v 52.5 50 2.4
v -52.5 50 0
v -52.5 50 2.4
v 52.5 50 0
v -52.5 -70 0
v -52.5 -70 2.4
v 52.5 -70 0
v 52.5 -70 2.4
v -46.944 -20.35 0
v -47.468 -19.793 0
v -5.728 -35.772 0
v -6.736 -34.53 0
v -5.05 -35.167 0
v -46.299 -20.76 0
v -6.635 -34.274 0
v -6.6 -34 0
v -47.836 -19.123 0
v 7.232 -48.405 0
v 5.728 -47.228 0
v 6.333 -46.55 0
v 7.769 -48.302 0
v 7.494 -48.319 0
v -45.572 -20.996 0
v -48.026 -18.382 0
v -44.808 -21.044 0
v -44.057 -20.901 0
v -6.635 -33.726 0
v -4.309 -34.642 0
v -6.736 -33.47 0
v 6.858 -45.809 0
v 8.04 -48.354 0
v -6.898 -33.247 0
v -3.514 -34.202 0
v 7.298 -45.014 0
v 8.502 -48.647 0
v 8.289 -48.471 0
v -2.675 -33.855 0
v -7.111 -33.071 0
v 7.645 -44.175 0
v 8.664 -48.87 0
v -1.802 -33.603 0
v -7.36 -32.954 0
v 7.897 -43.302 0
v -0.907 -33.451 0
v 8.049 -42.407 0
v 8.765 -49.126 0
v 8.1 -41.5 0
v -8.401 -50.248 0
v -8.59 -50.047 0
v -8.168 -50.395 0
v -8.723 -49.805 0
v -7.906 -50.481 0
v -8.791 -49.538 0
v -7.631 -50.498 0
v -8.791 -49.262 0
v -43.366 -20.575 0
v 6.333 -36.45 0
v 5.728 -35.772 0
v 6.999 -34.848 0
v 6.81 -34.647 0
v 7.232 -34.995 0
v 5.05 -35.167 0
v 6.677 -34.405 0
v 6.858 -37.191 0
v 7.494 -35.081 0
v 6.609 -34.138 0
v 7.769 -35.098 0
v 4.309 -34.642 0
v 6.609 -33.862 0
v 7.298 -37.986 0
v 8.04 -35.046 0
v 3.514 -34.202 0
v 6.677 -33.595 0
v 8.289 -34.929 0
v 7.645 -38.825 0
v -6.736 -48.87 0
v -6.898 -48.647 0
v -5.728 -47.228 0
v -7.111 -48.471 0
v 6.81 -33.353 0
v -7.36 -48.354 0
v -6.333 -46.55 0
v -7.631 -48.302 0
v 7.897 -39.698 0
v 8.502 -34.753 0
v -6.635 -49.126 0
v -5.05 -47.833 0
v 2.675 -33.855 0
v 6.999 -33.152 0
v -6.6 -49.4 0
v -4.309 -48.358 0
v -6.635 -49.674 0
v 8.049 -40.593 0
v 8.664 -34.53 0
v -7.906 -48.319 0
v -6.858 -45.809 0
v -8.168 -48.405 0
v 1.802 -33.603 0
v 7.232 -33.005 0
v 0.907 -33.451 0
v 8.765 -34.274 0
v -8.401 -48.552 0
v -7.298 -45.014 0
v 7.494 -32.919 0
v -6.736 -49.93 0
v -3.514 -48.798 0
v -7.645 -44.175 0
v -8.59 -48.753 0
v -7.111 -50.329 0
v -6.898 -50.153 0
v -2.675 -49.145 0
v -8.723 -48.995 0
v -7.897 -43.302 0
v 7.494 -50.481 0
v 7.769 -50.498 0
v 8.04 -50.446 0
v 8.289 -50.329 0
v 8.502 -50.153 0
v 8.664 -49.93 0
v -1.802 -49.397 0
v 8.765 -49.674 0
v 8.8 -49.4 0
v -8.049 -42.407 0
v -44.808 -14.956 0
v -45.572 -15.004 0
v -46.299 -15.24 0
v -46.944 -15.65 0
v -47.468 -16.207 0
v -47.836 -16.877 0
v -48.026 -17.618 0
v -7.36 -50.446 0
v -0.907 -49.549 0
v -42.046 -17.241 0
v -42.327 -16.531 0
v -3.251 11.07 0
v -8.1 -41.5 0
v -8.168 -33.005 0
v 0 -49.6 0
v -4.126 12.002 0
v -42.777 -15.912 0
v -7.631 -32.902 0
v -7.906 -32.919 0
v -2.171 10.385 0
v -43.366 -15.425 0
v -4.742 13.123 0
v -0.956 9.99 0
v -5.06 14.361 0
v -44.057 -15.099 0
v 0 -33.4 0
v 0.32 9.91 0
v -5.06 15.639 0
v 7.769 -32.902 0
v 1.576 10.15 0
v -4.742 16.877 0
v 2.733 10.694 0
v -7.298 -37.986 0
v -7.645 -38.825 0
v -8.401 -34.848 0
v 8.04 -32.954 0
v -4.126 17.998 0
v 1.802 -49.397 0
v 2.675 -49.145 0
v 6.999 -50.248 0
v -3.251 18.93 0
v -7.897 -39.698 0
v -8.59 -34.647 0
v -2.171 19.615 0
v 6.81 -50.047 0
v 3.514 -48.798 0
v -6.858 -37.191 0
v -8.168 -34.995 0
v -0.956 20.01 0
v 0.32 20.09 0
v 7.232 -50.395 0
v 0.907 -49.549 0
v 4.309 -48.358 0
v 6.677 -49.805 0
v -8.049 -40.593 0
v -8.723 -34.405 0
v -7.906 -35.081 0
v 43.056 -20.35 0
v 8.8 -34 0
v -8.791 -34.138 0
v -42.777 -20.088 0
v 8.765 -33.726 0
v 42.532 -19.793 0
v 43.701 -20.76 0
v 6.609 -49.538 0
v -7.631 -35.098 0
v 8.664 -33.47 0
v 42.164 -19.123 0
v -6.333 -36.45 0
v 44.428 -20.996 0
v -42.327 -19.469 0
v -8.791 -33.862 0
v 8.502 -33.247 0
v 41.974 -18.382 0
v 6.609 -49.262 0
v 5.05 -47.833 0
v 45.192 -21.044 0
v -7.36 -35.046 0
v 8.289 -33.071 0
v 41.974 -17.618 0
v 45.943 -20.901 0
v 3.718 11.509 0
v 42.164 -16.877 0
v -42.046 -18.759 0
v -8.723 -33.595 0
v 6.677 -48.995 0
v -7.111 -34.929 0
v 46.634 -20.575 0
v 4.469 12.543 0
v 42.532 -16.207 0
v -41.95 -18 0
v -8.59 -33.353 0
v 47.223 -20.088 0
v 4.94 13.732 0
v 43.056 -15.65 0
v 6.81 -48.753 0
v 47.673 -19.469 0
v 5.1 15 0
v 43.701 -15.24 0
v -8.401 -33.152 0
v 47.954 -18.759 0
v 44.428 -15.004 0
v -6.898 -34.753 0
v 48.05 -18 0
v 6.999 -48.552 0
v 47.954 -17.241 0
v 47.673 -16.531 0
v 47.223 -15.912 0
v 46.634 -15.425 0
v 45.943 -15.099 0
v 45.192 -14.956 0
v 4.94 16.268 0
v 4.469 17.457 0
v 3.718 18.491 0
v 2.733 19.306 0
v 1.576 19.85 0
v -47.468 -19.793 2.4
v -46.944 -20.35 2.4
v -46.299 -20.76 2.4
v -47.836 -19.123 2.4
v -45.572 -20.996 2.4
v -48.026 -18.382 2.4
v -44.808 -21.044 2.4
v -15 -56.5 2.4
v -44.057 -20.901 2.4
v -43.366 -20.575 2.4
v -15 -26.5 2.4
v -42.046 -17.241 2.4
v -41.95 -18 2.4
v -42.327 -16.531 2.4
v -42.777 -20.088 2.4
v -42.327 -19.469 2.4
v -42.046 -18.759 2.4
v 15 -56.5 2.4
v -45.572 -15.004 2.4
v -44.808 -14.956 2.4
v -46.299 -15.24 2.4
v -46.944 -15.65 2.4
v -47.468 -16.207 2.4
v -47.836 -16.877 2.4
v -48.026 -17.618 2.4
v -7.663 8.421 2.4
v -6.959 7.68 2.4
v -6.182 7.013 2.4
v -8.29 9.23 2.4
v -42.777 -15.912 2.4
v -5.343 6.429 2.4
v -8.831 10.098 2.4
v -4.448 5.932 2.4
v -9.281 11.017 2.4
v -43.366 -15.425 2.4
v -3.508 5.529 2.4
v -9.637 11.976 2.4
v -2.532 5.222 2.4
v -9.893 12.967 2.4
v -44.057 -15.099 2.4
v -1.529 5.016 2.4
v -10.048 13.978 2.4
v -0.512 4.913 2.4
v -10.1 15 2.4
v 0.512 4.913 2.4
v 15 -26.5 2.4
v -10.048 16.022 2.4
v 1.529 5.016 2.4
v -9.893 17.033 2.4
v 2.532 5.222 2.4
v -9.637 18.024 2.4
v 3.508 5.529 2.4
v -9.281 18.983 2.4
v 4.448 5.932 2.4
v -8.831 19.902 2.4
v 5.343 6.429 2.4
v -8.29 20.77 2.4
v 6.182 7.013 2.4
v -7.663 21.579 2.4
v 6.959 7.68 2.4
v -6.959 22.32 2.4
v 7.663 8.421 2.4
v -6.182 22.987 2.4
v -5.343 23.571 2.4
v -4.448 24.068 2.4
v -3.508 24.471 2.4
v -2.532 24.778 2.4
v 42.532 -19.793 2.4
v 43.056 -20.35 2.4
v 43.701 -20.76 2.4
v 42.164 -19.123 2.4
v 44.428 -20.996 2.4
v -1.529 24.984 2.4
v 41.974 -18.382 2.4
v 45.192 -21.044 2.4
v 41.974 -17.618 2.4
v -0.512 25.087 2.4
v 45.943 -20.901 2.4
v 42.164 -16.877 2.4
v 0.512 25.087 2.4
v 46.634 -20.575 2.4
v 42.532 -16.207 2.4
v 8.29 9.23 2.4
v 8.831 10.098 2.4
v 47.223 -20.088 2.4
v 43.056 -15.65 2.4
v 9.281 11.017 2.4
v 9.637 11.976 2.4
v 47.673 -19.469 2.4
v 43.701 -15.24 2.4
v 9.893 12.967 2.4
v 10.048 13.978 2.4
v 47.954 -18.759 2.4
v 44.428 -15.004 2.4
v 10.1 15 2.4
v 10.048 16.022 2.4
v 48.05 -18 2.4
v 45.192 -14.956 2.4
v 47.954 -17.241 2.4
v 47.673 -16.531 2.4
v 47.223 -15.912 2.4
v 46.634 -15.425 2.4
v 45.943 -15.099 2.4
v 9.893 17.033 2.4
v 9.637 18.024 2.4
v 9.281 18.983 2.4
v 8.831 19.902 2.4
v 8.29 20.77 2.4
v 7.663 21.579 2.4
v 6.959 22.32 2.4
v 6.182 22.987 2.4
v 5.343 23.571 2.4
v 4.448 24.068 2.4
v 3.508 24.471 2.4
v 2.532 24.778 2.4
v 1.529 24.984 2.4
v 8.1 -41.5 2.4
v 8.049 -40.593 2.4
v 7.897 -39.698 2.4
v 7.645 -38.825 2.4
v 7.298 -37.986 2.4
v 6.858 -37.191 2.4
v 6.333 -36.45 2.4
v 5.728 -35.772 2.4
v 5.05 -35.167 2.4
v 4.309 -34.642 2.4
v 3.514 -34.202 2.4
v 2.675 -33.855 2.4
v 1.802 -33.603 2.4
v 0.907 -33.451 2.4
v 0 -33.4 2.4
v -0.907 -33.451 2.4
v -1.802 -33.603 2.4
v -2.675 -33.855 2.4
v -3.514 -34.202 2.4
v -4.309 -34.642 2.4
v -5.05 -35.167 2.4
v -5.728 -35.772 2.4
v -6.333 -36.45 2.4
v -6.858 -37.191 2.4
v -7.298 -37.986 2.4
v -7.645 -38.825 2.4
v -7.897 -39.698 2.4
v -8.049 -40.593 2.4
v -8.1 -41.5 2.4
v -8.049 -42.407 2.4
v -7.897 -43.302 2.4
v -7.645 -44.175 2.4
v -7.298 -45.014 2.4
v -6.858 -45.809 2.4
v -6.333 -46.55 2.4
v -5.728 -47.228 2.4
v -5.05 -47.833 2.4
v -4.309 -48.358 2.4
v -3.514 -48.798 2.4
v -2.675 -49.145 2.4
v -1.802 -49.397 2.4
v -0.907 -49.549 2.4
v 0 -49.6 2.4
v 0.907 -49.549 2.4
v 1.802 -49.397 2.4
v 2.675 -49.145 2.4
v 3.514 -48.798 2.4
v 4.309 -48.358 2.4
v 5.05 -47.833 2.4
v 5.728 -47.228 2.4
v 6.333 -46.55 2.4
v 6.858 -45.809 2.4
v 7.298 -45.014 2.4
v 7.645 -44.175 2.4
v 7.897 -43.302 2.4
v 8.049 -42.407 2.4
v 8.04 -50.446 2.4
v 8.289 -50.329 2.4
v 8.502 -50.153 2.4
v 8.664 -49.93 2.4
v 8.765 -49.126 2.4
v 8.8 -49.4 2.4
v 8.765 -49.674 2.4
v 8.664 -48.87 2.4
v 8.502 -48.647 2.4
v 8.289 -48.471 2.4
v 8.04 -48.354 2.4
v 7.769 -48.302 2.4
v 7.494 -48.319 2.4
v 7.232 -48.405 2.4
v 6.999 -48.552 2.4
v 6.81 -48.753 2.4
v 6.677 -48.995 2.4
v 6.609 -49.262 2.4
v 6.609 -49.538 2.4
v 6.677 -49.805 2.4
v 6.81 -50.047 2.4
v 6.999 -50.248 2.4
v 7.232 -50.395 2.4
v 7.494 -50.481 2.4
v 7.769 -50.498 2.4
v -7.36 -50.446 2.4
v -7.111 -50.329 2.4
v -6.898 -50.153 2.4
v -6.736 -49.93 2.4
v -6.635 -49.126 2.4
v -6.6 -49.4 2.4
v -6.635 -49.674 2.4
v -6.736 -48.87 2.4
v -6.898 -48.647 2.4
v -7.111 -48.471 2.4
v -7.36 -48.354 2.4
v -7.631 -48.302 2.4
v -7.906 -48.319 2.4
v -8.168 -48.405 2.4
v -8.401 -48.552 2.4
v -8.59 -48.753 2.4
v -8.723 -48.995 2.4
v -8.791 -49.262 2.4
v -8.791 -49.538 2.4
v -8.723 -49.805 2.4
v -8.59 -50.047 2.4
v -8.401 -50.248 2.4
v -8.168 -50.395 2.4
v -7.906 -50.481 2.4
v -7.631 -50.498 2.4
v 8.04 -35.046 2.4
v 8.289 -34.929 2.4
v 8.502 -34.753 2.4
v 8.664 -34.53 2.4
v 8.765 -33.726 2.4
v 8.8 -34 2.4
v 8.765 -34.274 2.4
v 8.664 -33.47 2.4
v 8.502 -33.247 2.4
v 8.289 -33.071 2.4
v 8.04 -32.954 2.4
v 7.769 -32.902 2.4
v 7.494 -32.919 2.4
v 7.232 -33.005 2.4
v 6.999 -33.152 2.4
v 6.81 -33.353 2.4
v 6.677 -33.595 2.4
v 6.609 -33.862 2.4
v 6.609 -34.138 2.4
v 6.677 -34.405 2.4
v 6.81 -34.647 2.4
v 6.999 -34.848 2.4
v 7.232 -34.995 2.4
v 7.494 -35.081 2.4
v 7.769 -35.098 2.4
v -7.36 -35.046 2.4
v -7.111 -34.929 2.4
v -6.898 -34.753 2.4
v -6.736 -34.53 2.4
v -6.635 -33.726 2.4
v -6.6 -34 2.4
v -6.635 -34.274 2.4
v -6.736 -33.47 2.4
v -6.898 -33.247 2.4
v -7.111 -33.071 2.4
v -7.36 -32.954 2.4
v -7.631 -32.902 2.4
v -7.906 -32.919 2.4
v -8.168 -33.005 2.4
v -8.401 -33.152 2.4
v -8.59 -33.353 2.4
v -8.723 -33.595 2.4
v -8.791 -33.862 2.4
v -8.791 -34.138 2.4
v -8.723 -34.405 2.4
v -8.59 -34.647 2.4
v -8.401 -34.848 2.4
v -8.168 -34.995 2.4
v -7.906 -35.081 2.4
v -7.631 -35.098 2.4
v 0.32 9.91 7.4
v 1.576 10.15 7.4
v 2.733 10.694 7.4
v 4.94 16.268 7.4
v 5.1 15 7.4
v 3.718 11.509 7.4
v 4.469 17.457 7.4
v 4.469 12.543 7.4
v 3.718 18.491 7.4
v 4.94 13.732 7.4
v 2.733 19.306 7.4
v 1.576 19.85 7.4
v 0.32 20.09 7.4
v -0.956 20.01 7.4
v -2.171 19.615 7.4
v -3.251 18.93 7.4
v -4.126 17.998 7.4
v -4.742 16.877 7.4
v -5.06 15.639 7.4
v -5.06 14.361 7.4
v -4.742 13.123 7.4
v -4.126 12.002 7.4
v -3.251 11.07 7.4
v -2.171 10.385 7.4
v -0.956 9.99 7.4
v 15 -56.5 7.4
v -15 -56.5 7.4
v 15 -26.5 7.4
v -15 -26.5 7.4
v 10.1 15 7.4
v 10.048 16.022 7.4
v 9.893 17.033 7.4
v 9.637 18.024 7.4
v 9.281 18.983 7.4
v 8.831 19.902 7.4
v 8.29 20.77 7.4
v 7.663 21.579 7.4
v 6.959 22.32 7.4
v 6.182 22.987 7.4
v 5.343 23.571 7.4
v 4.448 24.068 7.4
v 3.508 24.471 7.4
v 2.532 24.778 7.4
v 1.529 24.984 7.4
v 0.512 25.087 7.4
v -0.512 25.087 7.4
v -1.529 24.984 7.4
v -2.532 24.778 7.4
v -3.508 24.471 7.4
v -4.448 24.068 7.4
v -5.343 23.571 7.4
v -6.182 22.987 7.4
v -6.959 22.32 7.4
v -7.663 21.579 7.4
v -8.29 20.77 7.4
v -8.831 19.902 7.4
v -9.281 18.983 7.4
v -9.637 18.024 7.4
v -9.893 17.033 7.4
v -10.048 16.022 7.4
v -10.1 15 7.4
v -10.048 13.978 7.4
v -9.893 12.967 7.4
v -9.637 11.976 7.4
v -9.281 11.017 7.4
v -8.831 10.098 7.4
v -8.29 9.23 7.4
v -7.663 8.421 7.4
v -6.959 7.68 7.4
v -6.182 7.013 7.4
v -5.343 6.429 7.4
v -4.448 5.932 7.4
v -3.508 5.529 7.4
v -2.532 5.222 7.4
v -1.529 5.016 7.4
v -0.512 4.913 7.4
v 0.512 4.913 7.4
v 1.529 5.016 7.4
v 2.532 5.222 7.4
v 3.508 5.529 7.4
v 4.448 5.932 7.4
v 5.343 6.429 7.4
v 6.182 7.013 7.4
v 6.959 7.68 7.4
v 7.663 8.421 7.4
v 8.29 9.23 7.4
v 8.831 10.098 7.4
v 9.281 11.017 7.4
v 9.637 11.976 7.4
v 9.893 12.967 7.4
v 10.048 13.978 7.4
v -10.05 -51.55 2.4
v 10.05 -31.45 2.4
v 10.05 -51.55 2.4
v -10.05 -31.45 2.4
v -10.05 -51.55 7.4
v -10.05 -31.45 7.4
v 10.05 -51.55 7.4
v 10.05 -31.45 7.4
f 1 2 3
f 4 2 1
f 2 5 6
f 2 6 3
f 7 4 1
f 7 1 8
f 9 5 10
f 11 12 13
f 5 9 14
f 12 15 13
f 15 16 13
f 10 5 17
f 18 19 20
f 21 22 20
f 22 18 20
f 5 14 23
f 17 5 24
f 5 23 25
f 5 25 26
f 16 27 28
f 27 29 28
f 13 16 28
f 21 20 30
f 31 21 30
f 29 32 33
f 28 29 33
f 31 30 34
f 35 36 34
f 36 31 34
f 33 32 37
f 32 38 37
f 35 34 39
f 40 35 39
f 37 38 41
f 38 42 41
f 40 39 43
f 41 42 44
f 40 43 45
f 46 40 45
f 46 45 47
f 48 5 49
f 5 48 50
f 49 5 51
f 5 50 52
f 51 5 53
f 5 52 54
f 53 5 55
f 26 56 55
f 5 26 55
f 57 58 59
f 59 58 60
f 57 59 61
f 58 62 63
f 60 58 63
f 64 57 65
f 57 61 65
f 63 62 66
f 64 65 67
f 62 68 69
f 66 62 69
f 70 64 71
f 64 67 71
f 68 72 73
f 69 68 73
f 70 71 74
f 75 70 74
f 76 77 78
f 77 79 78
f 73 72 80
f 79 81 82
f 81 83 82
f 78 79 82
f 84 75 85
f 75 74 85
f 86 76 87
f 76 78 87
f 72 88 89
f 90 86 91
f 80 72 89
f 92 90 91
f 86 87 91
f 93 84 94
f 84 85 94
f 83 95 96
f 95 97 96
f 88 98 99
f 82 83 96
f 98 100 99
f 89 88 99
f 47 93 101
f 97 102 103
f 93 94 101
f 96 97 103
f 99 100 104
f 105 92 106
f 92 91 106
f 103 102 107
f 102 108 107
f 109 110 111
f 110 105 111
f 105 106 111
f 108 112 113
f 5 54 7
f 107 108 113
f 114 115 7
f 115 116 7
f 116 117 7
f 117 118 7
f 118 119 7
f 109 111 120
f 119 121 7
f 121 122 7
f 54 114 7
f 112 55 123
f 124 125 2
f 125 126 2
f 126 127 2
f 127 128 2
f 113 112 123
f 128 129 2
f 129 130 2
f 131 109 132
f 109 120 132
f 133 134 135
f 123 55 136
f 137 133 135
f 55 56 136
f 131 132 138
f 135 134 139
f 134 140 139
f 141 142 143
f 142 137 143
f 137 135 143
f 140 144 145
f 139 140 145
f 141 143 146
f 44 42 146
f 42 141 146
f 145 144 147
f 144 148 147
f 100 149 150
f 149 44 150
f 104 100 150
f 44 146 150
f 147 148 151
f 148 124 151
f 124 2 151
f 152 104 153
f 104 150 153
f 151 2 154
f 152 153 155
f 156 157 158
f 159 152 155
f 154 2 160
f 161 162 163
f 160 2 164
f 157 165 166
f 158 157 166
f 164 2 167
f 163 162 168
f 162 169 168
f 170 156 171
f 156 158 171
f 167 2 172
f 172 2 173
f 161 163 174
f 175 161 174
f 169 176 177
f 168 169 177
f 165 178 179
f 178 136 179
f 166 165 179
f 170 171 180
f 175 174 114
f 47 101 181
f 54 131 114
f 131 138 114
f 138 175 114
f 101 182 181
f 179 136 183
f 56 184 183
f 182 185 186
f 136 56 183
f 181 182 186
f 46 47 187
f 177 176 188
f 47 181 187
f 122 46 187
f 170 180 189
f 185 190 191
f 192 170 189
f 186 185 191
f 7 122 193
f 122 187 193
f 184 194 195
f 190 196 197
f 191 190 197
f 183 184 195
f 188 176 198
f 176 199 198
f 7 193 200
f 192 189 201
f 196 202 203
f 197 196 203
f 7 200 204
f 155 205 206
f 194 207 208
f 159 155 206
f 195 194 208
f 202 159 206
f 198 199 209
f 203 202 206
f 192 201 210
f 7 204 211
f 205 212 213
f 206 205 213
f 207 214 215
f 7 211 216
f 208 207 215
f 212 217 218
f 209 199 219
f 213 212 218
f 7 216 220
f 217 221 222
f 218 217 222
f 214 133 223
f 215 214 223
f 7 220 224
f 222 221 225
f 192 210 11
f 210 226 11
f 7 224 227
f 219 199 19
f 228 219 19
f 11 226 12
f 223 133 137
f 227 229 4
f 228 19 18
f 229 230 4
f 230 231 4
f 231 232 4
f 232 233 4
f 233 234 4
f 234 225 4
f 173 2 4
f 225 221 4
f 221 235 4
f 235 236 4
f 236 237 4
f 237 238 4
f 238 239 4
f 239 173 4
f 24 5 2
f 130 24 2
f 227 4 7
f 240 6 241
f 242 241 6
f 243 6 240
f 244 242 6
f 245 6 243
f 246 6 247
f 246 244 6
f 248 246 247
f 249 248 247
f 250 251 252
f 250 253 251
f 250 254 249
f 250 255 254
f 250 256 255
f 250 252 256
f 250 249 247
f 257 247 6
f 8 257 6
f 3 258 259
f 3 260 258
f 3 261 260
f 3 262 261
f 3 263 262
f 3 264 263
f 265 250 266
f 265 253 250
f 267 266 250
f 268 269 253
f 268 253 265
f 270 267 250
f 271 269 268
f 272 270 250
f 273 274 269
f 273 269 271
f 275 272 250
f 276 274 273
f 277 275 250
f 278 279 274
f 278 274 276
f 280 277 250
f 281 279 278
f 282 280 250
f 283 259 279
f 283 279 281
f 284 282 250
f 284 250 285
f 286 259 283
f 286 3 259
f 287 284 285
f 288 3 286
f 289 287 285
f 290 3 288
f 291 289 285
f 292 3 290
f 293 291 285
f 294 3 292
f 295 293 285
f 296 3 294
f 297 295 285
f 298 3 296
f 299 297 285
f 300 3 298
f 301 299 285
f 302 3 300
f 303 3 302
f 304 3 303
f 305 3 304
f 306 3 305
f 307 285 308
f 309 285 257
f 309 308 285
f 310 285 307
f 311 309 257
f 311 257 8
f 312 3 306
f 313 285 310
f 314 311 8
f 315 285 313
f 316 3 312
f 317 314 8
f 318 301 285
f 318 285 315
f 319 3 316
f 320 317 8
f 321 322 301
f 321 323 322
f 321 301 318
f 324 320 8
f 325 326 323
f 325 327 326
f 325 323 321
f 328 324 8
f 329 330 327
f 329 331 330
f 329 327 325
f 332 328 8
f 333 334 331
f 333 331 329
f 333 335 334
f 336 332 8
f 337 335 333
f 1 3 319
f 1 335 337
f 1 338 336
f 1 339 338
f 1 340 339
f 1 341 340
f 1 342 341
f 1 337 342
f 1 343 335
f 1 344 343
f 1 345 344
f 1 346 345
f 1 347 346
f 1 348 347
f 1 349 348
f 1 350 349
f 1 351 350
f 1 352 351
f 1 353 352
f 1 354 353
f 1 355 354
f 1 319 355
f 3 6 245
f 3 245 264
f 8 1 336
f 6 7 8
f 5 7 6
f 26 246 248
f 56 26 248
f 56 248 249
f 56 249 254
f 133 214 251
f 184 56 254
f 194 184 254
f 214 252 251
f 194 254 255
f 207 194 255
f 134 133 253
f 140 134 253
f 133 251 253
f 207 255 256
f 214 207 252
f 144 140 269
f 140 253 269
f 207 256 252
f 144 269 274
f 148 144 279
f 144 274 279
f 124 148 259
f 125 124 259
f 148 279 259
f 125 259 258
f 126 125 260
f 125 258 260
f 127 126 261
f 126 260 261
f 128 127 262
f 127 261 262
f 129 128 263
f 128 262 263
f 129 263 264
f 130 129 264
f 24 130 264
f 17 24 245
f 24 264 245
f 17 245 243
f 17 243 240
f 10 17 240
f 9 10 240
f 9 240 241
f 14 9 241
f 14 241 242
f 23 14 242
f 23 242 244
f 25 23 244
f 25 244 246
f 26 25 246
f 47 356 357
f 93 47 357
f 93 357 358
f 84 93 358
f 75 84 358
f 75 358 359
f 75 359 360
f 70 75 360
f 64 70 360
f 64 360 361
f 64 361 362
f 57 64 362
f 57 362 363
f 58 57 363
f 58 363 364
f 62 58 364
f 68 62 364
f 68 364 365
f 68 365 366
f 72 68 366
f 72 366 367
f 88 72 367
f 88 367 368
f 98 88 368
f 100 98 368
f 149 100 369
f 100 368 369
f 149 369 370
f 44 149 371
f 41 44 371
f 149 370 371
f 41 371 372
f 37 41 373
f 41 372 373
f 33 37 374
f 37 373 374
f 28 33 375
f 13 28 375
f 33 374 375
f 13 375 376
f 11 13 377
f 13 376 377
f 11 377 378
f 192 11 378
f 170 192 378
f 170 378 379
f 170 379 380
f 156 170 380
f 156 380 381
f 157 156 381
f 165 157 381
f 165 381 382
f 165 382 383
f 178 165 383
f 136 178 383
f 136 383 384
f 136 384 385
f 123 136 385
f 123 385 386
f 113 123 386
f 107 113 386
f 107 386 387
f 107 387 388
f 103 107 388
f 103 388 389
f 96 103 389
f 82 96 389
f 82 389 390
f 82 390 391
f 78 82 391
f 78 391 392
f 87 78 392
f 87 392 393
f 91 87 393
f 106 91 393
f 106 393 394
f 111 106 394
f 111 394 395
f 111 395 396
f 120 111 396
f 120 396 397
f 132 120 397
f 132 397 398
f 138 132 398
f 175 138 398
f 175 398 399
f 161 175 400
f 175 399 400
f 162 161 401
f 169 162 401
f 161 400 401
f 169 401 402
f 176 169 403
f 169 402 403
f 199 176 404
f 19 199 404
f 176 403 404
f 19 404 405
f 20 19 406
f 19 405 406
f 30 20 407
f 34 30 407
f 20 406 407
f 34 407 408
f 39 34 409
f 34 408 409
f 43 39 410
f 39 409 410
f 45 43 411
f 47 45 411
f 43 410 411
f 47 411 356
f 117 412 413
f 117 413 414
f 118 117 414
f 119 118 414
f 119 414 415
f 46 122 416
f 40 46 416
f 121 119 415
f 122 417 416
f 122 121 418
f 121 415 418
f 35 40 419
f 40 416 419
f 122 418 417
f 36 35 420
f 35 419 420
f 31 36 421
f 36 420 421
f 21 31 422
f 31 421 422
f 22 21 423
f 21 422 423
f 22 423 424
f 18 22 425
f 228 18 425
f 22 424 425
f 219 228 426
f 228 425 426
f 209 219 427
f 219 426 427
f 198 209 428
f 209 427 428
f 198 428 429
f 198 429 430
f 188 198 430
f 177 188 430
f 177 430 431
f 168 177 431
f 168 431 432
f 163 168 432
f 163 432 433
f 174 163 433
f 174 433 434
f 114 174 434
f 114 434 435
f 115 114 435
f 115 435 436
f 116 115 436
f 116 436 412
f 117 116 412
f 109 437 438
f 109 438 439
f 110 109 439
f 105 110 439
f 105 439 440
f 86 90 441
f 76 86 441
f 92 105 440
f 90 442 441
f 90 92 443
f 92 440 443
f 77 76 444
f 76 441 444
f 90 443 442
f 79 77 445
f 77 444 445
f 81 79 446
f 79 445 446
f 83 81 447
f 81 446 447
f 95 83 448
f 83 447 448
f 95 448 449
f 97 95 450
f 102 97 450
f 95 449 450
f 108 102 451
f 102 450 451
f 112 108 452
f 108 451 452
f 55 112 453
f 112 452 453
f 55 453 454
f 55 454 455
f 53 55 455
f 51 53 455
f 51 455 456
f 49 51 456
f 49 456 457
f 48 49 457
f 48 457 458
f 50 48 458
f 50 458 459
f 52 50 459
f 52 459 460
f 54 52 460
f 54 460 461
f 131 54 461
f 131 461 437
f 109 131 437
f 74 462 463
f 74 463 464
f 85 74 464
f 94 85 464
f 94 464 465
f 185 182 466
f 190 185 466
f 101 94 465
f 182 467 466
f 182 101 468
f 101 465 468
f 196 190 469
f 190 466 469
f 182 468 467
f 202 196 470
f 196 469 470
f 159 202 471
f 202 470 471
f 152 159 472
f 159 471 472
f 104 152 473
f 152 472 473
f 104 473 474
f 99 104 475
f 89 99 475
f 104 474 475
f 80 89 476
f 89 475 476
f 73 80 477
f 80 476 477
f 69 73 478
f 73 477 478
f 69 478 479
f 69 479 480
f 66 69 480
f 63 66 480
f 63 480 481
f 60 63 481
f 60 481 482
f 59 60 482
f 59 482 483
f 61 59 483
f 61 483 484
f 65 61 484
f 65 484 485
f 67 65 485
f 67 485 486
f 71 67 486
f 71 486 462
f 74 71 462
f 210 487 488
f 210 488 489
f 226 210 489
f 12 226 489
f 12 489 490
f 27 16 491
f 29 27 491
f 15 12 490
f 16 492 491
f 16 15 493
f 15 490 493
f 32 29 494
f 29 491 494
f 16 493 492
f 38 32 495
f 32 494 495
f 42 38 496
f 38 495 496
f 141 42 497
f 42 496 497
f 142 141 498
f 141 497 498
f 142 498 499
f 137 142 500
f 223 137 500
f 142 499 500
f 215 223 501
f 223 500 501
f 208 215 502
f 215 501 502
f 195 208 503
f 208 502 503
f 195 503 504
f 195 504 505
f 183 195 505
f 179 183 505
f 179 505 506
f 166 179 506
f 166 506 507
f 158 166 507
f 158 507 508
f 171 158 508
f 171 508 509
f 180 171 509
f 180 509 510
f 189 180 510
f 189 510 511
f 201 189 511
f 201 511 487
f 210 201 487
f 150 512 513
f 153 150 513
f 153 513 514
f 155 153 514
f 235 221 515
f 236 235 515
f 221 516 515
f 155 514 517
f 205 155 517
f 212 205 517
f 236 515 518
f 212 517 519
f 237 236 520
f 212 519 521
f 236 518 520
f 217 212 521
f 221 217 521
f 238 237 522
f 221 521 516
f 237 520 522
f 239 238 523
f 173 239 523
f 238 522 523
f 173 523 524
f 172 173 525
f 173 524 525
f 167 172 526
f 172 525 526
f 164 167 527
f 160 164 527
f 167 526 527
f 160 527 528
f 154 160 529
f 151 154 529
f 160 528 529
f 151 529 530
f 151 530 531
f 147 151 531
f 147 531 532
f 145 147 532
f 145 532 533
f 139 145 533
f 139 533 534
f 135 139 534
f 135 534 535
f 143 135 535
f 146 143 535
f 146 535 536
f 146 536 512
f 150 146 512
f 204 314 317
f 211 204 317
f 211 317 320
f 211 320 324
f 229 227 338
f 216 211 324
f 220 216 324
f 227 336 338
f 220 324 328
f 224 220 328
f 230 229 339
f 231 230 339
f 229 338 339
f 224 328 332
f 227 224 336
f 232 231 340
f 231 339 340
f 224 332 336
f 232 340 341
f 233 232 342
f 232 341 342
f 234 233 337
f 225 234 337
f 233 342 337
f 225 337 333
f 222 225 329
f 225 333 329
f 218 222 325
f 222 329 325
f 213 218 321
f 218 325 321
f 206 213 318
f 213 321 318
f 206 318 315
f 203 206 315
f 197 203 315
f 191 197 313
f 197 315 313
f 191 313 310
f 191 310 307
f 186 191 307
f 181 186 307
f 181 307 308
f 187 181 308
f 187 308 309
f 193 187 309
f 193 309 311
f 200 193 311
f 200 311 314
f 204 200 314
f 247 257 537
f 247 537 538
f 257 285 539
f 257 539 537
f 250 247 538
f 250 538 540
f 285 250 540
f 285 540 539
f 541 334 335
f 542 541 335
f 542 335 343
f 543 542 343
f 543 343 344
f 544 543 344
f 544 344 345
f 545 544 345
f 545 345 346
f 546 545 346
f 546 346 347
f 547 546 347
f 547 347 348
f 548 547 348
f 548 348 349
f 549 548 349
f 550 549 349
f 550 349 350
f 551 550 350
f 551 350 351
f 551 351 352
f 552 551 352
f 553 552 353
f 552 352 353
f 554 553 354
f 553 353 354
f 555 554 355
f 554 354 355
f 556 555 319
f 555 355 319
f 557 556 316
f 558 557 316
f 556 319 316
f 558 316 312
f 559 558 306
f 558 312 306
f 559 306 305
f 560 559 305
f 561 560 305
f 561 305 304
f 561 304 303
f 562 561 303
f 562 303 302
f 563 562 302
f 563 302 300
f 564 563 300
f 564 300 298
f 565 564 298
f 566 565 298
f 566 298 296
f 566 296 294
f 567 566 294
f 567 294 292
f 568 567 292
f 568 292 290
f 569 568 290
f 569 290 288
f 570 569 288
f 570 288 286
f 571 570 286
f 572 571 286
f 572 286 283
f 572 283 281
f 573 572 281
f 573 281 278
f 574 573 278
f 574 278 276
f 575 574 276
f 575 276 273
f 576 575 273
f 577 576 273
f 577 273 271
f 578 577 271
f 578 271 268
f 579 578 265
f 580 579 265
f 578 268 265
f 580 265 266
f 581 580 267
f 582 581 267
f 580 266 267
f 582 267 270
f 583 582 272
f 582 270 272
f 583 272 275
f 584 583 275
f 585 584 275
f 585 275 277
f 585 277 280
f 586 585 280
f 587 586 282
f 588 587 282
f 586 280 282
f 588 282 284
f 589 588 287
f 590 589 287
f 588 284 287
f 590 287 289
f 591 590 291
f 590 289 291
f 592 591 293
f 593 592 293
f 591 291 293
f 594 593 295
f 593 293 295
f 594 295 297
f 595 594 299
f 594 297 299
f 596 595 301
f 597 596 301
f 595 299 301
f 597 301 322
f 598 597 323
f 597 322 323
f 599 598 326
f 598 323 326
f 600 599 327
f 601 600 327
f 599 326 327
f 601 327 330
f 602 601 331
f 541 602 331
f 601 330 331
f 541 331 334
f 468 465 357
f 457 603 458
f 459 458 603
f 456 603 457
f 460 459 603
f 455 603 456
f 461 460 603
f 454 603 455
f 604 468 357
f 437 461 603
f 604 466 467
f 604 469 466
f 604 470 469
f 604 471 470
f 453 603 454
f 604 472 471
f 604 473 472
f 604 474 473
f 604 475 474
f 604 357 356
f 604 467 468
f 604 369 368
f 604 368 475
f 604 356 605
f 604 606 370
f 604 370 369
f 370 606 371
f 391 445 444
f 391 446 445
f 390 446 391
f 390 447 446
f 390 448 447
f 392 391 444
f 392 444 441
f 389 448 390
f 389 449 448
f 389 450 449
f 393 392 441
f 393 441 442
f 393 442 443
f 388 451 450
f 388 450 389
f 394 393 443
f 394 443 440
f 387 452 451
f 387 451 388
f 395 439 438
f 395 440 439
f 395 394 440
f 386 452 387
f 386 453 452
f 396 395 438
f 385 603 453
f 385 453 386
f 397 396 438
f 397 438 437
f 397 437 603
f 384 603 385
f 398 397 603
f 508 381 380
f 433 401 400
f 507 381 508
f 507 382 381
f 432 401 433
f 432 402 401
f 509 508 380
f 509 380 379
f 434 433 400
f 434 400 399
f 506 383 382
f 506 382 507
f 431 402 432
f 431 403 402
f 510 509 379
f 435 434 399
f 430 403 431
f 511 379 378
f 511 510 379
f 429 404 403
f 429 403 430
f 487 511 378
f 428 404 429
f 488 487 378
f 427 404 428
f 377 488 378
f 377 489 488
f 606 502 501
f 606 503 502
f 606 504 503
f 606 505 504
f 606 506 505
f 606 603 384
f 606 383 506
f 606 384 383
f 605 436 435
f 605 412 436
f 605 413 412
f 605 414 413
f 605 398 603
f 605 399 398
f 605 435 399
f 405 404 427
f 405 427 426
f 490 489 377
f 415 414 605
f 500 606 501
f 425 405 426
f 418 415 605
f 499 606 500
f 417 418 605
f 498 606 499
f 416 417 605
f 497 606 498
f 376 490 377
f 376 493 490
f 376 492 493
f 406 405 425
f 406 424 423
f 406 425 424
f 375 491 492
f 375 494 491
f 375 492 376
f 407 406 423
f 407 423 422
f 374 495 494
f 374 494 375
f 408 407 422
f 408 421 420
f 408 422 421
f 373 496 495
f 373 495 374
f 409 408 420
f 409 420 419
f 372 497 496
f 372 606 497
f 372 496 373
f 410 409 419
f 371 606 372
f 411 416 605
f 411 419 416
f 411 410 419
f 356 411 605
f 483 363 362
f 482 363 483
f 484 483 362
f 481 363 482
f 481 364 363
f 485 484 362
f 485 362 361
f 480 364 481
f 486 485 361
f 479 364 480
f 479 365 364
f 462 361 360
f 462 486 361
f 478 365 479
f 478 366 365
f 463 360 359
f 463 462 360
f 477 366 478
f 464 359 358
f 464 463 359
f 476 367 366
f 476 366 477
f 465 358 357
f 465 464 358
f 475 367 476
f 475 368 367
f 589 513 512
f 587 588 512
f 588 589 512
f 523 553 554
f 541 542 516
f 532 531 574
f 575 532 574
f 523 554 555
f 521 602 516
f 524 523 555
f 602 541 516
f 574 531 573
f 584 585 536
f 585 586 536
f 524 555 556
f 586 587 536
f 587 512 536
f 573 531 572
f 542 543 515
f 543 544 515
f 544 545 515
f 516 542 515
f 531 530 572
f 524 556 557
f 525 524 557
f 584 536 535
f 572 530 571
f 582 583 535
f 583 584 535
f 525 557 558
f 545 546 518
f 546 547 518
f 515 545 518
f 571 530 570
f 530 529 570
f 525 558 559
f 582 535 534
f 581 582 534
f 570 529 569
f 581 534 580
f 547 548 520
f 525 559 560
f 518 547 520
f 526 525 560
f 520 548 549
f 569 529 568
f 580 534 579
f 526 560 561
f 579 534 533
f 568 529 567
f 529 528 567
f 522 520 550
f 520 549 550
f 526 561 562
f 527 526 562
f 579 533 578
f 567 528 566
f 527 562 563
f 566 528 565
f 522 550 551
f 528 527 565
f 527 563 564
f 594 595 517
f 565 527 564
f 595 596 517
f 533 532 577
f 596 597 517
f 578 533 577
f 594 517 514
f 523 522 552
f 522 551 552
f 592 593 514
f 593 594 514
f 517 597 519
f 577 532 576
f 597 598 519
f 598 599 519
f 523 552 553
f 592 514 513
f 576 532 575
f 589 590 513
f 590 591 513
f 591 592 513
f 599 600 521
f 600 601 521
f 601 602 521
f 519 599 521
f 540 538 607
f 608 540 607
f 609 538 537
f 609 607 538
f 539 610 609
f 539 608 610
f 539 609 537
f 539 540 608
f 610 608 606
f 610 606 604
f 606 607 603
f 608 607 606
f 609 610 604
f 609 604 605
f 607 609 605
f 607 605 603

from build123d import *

# Parameters (mm, degrees)
SKETCH_W        = 105
SKETCH_H        = 120
PAD_DEPTH       = 2.4
SKETCH001_R     = 8.1
SKETCH001_R_2   = 1.1
POCKET_DEPTH    = 5
SKETCH002_W     = 30
SKETCH002_H     = 30
PAD001_DEPTH    = 5
SKETCH003_W     = 20.1
SKETCH003_H     = 20.1
POCKET001_DEPTH = 5
SKETCH004_R     = 10.1
PAD002_DEPTH    = 5
SKETCH005_R     = 5.1
POCKET002_DEPTH = 7.401
SKETCH007_R     = 3.05
POCKET003_DEPTH = 5


with BuildPart() as part:
    # Sketch → Pad (new body)
    with BuildSketch(Plane.XY):
        with Locations((0, -10)):
            Rectangle(SKETCH_W, SKETCH_H)
    extrude(amount=PAD_DEPTH)

    # Sketch001 → Pocket (cut)
    with BuildSketch(Plane.XY.offset(2.4)):
        with Locations((0, -41.5)):
            Circle(SKETCH001_R)
        with Locations((-7.7, -34)):
            Circle(SKETCH001_R_2)
        with Locations((7.7, -34)):
            Circle(SKETCH001_R_2)
        with Locations((-7.7, -49.4)):
            Circle(SKETCH001_R_2)
        with Locations((7.7, -49.4)):
            Circle(SKETCH001_R_2)
    extrude(amount=-POCKET_DEPTH, mode=Mode.SUBTRACT)

    # Sketch002 → Pad001 (new body)
    with BuildSketch(Plane.XY.offset(2.4)):
        with Locations((0, -41.5)):
            Rectangle(SKETCH002_W, SKETCH002_H)
    extrude(amount=PAD001_DEPTH)

    # Sketch003 → Pocket001 (cut)
    with BuildSketch(Plane.XY.offset(7.4)):
        with Locations((0, -41.5)):
            Rectangle(SKETCH003_W, SKETCH003_H)
    extrude(amount=-POCKET001_DEPTH, mode=Mode.SUBTRACT)

    # Sketch004 → Pad002 (new body)
    with BuildSketch(Plane.XY.offset(2.4)):
        with Locations((0, 15)):
            Circle(SKETCH004_R)
    extrude(amount=PAD002_DEPTH)

    # Sketch005 → Pocket002 (cut, through all)
    with BuildSketch(Plane.XY.offset(7.4)):
        with Locations((0, 15)):
            Circle(SKETCH005_R)
    extrude(amount=-POCKET002_DEPTH, mode=Mode.SUBTRACT)

    # Sketch007 → Pocket003 (cut)
    with BuildSketch(Plane.XY.offset(2.4)):
        with Locations((-45, -18)):
            Circle(SKETCH007_R)
        with Locations((45, -18)):
            Circle(SKETCH007_R)
    extrude(amount=-POCKET003_DEPTH, mode=Mode.SUBTRACT)


solid = part.part
